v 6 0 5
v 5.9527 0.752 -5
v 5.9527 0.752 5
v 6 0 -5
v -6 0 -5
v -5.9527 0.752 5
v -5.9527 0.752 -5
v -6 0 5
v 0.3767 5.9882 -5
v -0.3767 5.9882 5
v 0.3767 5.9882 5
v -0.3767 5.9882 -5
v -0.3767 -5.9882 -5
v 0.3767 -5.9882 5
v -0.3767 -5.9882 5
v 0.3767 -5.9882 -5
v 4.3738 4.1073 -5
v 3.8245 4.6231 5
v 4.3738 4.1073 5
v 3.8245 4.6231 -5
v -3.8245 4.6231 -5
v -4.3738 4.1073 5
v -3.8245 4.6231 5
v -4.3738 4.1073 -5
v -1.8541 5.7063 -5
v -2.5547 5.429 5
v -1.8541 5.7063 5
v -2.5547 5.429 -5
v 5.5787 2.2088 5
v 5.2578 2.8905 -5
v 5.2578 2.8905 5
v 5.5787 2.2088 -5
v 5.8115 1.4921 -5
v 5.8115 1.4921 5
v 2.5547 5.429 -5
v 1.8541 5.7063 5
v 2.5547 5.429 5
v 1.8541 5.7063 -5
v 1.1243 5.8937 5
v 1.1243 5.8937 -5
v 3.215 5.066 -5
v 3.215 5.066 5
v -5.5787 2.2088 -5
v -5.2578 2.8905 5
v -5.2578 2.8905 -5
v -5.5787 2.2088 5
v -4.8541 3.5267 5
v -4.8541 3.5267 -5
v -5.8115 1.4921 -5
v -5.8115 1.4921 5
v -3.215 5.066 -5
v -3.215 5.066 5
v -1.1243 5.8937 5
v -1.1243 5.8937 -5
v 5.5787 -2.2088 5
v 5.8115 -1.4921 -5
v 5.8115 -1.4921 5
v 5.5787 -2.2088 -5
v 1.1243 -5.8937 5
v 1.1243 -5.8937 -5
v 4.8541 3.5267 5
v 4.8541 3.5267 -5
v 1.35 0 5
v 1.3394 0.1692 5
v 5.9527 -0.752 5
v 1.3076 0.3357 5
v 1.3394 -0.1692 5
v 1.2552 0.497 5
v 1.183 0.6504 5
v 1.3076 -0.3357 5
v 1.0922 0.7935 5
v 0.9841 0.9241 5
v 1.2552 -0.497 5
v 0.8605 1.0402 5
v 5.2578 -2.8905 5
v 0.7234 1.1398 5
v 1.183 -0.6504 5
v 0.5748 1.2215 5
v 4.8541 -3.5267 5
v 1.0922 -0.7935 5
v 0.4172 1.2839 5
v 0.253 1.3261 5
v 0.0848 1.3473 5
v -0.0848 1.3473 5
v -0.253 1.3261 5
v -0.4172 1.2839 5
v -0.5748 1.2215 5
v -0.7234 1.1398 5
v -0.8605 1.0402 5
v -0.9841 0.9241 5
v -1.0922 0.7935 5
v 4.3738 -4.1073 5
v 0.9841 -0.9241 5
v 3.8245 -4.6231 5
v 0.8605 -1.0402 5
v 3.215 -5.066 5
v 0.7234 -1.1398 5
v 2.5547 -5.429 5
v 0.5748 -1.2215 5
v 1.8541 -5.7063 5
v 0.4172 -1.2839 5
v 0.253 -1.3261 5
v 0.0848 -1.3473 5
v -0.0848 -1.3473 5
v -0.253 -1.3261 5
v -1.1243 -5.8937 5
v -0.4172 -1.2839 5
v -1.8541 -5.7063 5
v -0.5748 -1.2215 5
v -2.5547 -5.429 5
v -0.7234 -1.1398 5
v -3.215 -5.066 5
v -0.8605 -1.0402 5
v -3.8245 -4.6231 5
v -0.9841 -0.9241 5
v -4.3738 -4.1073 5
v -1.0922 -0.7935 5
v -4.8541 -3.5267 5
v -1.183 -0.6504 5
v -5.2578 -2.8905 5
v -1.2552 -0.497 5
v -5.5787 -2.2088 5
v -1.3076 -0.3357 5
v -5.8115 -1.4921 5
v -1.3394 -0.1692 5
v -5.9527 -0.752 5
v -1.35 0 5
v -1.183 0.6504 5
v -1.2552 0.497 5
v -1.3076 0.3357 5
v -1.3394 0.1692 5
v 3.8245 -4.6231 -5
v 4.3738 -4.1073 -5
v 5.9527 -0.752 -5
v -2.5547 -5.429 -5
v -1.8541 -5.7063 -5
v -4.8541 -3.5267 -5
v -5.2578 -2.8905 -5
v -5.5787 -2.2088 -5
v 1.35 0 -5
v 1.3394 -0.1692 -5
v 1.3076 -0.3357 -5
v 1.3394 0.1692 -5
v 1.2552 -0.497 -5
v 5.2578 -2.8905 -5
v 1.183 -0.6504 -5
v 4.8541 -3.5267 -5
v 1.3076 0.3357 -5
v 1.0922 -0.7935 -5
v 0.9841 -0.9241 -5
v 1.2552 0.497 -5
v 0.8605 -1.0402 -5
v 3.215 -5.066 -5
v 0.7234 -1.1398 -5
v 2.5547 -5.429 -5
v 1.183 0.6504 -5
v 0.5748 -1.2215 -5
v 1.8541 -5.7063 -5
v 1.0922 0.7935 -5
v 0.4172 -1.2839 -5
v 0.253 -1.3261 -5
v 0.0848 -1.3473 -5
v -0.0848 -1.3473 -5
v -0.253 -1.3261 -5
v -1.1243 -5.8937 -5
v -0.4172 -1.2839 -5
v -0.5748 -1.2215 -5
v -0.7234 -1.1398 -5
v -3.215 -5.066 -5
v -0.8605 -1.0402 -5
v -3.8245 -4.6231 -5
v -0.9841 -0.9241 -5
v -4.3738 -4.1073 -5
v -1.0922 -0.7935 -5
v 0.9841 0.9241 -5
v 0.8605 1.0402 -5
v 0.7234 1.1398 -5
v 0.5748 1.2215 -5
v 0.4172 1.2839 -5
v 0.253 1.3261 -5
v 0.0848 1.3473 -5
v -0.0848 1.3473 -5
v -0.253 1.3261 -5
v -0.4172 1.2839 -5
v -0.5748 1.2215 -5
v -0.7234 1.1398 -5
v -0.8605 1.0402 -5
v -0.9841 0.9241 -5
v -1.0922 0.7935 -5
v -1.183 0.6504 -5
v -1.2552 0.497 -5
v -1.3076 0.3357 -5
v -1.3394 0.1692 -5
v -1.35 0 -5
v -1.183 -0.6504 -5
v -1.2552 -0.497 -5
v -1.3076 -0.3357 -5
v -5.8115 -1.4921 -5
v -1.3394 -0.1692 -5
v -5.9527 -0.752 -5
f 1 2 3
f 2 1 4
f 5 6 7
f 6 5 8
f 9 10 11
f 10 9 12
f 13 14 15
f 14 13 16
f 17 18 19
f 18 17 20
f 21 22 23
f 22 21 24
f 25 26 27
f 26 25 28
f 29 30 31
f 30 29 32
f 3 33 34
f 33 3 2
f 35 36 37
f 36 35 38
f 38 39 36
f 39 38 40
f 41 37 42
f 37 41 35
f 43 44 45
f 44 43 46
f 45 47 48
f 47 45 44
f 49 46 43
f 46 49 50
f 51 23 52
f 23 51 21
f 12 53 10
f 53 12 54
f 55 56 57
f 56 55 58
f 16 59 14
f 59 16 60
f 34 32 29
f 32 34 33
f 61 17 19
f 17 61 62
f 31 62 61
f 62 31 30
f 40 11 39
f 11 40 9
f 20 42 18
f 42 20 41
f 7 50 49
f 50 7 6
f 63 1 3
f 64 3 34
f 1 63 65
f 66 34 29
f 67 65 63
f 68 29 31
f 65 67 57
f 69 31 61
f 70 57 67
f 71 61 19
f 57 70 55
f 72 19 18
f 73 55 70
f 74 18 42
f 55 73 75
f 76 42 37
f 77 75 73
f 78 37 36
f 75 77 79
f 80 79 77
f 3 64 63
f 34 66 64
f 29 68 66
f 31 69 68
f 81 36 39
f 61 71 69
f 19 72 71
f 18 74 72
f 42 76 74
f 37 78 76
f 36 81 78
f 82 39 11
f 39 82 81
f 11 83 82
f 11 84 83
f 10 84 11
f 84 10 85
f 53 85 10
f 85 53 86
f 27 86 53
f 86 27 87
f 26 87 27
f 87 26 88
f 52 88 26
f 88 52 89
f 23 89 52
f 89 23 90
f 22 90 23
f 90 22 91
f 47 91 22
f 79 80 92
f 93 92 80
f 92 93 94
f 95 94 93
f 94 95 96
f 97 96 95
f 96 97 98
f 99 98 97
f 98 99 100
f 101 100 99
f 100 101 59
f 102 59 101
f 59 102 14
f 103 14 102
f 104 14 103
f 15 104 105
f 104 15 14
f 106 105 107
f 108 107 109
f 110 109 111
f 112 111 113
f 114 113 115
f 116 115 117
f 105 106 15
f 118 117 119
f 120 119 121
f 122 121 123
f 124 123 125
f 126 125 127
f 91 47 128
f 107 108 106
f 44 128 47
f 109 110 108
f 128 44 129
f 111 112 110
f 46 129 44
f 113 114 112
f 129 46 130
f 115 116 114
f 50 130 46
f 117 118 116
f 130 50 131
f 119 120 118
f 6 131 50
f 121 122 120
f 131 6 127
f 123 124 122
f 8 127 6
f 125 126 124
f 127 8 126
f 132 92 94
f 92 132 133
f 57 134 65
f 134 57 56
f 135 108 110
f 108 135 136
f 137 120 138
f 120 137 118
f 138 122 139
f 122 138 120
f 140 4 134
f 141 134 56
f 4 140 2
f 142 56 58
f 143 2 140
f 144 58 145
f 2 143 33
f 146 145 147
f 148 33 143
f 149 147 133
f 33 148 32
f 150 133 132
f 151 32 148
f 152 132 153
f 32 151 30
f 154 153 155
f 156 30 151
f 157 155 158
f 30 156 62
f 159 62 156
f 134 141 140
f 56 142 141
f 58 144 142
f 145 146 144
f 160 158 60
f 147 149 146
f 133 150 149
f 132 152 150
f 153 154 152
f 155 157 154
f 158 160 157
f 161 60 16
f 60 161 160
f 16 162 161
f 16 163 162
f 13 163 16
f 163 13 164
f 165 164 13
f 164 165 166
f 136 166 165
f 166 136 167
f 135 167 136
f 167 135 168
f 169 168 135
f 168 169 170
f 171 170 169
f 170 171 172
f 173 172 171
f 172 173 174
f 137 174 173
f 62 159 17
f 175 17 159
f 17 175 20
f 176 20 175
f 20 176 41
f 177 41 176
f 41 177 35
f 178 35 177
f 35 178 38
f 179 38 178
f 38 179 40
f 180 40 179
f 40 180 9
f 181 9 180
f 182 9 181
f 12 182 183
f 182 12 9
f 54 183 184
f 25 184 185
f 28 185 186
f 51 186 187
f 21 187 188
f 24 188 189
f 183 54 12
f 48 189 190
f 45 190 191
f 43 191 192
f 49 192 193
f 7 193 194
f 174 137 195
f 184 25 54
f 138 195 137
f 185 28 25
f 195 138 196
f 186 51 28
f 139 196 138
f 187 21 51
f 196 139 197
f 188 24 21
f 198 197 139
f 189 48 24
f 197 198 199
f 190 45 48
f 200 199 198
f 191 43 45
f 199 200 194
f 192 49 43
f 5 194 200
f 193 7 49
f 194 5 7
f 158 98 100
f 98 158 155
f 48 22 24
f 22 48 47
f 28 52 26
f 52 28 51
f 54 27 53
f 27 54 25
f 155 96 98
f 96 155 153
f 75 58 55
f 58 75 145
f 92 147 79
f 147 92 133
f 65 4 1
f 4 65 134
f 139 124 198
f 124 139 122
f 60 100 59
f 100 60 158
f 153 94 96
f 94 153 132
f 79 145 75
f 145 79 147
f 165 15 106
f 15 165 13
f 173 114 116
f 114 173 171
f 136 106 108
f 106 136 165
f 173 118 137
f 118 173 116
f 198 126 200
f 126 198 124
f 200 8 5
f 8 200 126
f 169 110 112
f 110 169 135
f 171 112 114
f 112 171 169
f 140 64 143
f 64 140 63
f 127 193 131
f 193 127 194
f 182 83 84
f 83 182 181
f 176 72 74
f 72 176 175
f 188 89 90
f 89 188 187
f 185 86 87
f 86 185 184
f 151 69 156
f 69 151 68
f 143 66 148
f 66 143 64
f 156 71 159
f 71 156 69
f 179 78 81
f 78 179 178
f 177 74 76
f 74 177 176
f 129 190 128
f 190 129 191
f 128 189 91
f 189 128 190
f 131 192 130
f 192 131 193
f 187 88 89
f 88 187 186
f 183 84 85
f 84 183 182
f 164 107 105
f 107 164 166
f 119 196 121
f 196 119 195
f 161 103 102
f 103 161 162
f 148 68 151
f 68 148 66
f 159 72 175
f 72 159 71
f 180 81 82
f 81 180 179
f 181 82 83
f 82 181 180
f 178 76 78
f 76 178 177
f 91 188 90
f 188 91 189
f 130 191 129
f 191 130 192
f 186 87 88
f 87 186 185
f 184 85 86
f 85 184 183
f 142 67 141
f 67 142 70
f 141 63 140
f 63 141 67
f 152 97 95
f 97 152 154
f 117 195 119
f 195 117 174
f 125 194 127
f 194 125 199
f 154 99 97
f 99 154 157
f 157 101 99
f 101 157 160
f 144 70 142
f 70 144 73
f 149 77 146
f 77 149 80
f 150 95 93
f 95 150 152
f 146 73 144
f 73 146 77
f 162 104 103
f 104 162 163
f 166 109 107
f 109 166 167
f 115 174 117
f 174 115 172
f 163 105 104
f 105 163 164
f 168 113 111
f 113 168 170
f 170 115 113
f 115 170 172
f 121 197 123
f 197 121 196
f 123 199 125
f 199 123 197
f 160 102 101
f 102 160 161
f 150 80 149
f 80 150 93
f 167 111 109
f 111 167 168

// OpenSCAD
$fn = 50;


difference() {
	union() {
		translate(v = [0, 0, -5.0000000000]) {
			cylinder(h = 10, r = 6.0000000000);
		}
	}
	union() {
		translate(v = [0, 0, -100.0000000000]) {
			cylinder(h = 200, r = 1.3500000000);
		}
	}
}
